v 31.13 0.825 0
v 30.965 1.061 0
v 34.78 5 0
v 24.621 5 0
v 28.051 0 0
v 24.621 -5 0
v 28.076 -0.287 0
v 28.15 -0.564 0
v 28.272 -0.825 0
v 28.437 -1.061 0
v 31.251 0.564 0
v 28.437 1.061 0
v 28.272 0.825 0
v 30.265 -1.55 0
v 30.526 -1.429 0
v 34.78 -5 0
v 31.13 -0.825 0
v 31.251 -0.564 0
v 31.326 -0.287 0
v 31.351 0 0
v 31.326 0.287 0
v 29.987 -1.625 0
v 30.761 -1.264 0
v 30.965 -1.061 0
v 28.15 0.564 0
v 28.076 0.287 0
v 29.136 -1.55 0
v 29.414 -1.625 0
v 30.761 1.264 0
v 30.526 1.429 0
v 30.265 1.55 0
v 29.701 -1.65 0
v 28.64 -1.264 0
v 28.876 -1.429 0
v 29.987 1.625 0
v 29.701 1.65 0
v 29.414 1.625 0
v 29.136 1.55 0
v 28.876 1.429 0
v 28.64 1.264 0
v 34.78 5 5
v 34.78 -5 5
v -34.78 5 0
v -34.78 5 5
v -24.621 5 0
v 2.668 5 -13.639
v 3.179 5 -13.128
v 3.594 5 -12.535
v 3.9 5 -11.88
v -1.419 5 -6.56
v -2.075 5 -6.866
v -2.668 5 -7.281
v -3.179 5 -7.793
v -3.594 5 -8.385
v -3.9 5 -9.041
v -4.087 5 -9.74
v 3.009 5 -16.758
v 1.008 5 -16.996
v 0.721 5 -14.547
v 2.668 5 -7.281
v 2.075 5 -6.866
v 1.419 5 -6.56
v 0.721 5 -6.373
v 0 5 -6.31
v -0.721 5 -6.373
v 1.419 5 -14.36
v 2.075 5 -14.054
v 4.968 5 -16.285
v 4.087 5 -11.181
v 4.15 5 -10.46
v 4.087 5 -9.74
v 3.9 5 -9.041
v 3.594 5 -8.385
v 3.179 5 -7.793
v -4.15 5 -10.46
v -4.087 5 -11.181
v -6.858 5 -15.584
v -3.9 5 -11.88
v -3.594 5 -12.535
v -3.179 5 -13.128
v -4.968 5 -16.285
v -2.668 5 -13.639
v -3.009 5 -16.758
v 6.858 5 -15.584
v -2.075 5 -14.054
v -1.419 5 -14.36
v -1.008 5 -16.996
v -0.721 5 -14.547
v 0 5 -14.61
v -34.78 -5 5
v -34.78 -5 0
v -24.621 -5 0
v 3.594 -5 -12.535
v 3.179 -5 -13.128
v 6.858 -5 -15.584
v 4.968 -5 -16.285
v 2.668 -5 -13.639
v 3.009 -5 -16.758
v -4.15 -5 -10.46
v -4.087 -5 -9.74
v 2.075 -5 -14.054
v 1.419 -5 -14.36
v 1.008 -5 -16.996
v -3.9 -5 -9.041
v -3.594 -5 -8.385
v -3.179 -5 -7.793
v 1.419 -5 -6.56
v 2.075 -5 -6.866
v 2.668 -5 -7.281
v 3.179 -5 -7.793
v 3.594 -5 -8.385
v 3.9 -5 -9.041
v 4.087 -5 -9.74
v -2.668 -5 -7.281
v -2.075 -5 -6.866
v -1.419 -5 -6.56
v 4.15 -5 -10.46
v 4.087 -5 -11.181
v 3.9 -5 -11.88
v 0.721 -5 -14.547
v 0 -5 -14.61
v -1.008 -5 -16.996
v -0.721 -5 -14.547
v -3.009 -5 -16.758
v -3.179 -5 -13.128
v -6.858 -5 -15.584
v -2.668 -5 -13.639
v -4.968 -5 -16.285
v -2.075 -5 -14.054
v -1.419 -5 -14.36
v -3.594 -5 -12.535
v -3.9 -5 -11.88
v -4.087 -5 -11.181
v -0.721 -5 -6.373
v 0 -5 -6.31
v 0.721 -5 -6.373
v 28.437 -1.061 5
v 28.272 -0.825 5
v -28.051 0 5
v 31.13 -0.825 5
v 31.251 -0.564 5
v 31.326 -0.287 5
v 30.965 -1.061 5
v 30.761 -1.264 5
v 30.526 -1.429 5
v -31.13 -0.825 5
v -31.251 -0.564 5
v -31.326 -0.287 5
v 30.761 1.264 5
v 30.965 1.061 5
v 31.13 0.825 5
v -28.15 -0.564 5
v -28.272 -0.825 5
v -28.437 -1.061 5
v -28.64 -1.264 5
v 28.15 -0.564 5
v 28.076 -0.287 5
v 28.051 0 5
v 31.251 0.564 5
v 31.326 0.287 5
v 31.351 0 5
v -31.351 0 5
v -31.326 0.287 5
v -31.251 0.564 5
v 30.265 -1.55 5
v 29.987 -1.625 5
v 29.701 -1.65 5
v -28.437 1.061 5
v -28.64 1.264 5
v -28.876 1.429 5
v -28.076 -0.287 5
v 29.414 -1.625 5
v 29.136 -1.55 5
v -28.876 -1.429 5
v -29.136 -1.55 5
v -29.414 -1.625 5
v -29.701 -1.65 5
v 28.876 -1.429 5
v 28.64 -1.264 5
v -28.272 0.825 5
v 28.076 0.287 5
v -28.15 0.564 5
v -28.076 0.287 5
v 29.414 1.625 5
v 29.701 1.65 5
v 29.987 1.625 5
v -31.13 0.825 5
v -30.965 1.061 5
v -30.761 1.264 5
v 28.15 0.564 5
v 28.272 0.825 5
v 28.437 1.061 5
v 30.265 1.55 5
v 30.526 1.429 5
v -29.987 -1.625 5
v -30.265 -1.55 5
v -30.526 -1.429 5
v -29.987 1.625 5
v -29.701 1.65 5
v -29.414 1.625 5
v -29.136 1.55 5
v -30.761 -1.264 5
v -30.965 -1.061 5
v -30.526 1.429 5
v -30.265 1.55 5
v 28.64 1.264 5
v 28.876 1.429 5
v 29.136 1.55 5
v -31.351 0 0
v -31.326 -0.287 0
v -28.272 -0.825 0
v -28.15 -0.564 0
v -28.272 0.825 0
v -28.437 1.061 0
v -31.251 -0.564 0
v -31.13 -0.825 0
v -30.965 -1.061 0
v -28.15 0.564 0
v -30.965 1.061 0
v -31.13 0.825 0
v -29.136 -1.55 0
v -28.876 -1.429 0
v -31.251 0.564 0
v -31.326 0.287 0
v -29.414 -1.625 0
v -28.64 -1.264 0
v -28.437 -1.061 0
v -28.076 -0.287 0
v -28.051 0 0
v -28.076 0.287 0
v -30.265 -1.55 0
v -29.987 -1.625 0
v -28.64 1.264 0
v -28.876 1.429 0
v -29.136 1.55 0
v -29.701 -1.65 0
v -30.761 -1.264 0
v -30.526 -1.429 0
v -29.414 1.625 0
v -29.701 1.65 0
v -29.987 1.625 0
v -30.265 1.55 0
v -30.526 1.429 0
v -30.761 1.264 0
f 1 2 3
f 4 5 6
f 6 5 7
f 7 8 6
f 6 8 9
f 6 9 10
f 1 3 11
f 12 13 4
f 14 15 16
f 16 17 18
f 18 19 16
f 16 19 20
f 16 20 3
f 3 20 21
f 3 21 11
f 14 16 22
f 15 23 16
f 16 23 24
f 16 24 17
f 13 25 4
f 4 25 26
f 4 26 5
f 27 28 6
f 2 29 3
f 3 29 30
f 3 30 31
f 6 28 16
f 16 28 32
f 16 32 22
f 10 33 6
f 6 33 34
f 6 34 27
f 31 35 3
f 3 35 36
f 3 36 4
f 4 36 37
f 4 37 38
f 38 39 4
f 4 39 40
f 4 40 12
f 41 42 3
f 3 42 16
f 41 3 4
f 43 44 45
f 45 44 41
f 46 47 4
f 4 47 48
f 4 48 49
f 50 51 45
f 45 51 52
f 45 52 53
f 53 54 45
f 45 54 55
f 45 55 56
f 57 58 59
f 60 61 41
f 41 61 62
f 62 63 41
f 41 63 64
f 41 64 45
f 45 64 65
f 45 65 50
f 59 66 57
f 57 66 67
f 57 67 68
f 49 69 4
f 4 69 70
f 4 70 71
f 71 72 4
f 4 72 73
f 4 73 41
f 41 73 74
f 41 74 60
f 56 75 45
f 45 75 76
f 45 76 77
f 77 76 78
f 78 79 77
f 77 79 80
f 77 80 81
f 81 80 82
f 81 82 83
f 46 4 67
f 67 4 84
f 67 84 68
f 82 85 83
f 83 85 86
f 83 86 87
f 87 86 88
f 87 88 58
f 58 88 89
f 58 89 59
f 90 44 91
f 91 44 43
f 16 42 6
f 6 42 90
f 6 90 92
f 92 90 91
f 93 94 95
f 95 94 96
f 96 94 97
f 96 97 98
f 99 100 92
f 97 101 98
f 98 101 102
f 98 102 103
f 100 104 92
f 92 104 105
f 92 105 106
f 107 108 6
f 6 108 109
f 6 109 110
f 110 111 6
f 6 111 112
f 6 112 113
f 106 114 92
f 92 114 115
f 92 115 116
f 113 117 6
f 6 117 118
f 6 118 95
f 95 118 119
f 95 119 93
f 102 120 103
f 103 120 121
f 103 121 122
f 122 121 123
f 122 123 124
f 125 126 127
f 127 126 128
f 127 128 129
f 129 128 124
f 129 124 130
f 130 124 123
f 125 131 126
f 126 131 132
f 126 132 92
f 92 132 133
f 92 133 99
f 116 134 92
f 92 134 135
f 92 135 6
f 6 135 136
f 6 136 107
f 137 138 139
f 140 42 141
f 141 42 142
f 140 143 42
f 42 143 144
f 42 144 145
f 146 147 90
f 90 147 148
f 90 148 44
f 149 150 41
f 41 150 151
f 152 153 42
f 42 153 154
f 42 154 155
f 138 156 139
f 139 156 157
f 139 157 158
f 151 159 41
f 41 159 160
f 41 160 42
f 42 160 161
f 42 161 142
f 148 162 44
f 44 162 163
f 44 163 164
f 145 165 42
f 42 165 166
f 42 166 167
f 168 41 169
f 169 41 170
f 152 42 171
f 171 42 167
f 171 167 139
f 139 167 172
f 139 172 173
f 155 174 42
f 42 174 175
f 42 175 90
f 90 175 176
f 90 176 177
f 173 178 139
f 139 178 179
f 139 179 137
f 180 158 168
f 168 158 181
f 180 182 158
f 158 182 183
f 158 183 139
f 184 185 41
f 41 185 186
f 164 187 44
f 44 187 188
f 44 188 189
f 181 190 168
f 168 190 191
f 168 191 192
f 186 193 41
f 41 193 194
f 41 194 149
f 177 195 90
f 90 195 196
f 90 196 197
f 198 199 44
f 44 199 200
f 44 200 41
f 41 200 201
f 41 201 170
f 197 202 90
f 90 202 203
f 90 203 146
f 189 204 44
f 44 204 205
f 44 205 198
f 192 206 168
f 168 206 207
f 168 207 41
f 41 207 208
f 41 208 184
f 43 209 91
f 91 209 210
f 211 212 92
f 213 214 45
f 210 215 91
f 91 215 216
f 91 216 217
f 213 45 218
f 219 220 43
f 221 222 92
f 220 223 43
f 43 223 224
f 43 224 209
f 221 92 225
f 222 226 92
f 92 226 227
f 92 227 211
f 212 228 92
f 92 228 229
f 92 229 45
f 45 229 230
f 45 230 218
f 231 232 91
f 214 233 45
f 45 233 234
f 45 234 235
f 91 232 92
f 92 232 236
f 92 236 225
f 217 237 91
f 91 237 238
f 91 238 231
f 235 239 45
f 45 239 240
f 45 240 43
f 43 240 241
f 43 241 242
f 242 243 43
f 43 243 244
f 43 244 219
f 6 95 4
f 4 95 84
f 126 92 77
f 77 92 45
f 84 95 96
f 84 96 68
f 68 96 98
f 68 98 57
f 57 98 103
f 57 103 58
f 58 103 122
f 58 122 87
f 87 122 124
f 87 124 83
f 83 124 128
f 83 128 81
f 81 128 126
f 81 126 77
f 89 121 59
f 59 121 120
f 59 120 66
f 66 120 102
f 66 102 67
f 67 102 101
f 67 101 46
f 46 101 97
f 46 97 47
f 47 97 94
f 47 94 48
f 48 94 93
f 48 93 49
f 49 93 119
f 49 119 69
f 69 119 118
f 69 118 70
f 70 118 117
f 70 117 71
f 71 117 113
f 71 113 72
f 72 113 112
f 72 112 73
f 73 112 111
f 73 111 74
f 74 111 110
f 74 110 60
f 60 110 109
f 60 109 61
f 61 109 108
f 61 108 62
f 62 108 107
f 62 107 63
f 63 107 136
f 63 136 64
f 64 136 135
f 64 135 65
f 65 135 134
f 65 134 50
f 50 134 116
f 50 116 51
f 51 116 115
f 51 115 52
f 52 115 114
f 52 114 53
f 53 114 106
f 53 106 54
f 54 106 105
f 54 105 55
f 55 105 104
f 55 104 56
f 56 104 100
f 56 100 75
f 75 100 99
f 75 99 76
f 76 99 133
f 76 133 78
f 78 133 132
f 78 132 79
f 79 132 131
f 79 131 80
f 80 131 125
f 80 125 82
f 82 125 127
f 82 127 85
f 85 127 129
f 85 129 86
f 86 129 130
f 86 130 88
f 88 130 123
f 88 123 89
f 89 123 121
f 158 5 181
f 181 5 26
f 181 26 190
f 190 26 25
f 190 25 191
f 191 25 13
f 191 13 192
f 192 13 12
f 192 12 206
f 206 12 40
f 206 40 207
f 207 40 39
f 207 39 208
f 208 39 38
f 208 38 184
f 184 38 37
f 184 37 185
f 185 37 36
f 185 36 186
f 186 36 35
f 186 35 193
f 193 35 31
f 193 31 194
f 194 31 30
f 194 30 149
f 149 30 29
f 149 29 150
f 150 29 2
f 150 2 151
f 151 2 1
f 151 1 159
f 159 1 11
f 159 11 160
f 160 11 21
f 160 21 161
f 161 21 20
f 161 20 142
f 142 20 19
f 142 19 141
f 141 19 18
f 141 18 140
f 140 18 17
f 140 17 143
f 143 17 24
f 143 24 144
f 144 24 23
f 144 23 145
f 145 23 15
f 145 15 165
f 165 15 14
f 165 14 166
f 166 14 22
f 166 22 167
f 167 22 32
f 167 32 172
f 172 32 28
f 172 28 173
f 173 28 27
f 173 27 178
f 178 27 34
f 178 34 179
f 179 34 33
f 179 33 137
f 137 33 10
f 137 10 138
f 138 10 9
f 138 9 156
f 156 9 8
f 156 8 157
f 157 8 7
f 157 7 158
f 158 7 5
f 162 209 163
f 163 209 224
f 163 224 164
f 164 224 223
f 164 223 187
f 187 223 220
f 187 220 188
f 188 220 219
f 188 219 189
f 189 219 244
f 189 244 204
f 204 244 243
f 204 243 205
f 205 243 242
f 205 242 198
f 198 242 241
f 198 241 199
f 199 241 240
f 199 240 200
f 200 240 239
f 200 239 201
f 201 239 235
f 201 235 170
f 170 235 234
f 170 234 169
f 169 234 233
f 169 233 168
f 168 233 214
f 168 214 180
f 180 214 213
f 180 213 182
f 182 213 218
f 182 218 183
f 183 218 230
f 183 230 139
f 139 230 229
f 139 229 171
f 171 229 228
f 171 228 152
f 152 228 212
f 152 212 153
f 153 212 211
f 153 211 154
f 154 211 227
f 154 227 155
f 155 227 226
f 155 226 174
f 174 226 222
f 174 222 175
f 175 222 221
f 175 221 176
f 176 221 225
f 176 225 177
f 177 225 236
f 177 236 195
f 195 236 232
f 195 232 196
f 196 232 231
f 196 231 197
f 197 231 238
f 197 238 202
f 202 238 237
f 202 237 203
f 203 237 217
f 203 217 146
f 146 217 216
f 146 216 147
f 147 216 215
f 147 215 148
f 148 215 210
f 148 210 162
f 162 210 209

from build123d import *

# Parameters (mm, degrees)
SCHIZZO1_W                   = 69.56
SCHIZZO1_H                   = 10
ESTRUSIONE_ESTRUSIONE1_DEPTH = 5
SCHIZZO2_R                   = 4.15
ESTRUSIONE_ESTRUSIONE2_DEPTH = 10
SCHIZZO3_R                   = 1.65
TAGLIO_ESTRUSIONE1_DEPTH     = 5


with BuildPart() as part:
    # Schizzo1 → Estrusione-Estrusione1 (new body)
    with BuildSketch(Plane.XY):
        Rectangle(SCHIZZO1_W, SCHIZZO1_H)
    extrude(amount=ESTRUSIONE_ESTRUSIONE1_DEPTH)

    # Schizzo2 → Estrusione-Estrusione2 (add)
    with BuildSketch(Plane.XZ.offset(5)):
        with BuildLine():
            Line((24.621255453, 0), (-24.621255453, 0))
            Line((-24.621255453, 0), (-6.857549921, -15.584245975))
            ThreePointArc((-6.857549921, -15.584245975), (0, -17.026294768), (6.857549921, -15.584245975))
            Line((6.857549921, -15.584245975), (24.621255453, 0))
        make_face()
        with Locations(Location((0, -10.460161878, 0), (0, 0, 270))):
            Circle(SCHIZZO2_R, mode=Mode.SUBTRACT)
    extrude(amount=-ESTRUSIONE_ESTRUSIONE2_DEPTH)

    # Schizzo3 → Taglio-Estrusione1 (cut)
    with BuildSketch(Plane(origin=(0, 0, 0), x_dir=(-1, 0, 0), z_dir=(0, 0, -1))):
        with Locations((-29.700627727, 0)):
            Circle(SCHIZZO3_R)
    taglio_estrusione1 = extrude(amount=-TAGLIO_ESTRUSIONE1_DEPTH, mode=Mode.SUBTRACT)

    # Specchia1: Taglio-Estrusione1 across plane
    add(taglio_estrusione1.mirror(Plane(origin=(0, 0, 0), x_dir=(0, 0, 1), z_dir=(1, 0, 0))), mode=Mode.SUBTRACT)


solid = part.part
